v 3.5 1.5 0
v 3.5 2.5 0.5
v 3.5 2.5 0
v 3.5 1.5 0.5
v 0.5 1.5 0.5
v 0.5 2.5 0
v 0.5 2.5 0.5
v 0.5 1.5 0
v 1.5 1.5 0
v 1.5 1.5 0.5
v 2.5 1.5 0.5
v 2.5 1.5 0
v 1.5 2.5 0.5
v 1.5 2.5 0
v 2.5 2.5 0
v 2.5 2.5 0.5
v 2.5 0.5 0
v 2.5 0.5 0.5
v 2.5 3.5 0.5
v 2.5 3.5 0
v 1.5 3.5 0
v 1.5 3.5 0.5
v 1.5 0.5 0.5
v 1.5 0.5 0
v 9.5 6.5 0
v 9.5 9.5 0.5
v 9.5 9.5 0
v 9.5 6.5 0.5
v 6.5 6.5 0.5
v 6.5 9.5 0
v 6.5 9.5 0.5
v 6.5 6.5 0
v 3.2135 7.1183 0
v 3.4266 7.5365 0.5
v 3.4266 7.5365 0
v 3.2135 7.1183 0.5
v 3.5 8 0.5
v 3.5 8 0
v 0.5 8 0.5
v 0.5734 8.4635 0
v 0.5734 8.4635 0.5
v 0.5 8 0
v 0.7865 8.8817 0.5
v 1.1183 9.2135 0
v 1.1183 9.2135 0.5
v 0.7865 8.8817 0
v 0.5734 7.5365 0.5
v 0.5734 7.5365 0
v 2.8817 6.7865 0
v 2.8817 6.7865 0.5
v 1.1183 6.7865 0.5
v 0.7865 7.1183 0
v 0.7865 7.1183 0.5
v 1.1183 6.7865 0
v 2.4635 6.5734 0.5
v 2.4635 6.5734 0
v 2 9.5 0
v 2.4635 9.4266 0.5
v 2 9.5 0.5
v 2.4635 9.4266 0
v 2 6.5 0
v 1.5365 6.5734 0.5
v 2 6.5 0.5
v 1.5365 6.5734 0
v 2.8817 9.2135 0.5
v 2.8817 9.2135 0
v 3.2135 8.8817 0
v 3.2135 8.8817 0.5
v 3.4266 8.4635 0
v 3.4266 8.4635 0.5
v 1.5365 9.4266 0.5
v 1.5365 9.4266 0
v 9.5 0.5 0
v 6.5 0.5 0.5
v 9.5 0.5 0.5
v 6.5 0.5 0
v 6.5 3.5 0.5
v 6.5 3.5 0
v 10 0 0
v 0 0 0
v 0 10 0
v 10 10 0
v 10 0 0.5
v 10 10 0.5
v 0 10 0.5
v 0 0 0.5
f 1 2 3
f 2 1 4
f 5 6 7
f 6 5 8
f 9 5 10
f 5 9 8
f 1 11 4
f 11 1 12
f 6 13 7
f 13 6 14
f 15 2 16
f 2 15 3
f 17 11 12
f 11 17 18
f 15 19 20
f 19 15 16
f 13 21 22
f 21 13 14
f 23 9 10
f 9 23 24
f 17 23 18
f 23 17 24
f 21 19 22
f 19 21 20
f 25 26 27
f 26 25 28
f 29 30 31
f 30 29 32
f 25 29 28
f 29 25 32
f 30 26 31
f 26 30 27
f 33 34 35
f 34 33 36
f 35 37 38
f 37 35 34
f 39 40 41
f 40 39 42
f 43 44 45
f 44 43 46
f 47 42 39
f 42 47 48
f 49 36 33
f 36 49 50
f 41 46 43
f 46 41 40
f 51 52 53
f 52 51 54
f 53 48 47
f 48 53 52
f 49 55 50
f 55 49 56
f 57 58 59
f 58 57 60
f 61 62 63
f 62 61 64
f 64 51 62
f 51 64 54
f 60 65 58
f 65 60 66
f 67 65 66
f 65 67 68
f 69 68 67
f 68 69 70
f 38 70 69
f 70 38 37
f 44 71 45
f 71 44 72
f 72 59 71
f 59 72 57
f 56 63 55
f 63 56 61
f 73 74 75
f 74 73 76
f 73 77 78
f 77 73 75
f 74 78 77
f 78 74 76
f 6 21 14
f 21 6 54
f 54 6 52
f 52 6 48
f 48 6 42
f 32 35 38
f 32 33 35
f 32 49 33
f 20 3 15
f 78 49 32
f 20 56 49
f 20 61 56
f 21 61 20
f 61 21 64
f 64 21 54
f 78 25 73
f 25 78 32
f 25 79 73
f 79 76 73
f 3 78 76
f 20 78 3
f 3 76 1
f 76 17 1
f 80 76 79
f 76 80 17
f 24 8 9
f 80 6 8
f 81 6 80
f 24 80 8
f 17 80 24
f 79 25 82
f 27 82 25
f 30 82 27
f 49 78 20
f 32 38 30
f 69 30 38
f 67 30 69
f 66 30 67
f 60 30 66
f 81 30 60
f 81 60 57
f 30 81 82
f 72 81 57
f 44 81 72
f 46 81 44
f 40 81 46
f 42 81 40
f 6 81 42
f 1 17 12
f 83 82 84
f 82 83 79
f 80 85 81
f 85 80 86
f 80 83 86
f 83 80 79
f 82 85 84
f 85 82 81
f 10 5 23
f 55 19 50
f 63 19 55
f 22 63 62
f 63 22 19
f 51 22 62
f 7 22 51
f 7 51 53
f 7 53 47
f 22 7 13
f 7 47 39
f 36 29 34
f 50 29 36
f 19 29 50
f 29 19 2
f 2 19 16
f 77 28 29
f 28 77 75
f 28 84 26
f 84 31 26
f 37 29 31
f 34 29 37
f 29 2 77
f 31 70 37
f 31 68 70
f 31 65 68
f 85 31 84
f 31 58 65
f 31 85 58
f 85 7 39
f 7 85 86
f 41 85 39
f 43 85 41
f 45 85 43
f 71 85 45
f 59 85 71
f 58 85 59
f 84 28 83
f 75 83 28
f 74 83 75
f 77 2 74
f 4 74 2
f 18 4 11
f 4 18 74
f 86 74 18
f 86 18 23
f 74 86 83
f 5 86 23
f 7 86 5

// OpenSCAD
// Copyright (c) 2016 Richard Hawkins
//
// Licensed under the Apache License, Version 2.0 (the "License");
// you may not use this file except in compliance with the License.
// You may obtain a copy of the License at
//
//    http://www.apache.org/licenses/LICENSE-2.0
//
// Unless required by applicable law or agreed to in writing, software
// distributed under the License is distributed on an "AS IS" BASIS,
// WITHOUT WARRANTIES OR CONDITIONS OF ANY KIND, either express or
// implied.
// See the License for the specific language governing permissions and
// limitations under the License.

module shapes()
{
    union() {
    translate([0.5, 1.5, -0.5])
    linear_extrude(2, center=false, convexity=10, twist=0)
    square(size=[3,1]);
        
    translate([1.5, 0.5, -0.5])
    linear_extrude(2, center=false, convexity=10, twist=0)
    square(size=[1,3]);
        
    translate([6.5, 6.5, -0.5])
    linear_extrude(2, center=false, convexity=10, twist=0)
    square(3);
        
    translate([2, 8.0, -0.5])
    linear_extrude(2, center=false, convexity=10, twist=0)
    circle(1.5, $fn=20);
        
    translate([6.5, 0.5, -0.5])
    linear_extrude(2, center=false, convexity=10, twist=0)
    polygon([[0,0],[3,0],[0,3]], paths=[[0,1,2]]);
    }
}

difference() {
    linear_extrude(0.5, center=false, convexity=10, twist=0)
    square(10);
    
    shapes();
}
